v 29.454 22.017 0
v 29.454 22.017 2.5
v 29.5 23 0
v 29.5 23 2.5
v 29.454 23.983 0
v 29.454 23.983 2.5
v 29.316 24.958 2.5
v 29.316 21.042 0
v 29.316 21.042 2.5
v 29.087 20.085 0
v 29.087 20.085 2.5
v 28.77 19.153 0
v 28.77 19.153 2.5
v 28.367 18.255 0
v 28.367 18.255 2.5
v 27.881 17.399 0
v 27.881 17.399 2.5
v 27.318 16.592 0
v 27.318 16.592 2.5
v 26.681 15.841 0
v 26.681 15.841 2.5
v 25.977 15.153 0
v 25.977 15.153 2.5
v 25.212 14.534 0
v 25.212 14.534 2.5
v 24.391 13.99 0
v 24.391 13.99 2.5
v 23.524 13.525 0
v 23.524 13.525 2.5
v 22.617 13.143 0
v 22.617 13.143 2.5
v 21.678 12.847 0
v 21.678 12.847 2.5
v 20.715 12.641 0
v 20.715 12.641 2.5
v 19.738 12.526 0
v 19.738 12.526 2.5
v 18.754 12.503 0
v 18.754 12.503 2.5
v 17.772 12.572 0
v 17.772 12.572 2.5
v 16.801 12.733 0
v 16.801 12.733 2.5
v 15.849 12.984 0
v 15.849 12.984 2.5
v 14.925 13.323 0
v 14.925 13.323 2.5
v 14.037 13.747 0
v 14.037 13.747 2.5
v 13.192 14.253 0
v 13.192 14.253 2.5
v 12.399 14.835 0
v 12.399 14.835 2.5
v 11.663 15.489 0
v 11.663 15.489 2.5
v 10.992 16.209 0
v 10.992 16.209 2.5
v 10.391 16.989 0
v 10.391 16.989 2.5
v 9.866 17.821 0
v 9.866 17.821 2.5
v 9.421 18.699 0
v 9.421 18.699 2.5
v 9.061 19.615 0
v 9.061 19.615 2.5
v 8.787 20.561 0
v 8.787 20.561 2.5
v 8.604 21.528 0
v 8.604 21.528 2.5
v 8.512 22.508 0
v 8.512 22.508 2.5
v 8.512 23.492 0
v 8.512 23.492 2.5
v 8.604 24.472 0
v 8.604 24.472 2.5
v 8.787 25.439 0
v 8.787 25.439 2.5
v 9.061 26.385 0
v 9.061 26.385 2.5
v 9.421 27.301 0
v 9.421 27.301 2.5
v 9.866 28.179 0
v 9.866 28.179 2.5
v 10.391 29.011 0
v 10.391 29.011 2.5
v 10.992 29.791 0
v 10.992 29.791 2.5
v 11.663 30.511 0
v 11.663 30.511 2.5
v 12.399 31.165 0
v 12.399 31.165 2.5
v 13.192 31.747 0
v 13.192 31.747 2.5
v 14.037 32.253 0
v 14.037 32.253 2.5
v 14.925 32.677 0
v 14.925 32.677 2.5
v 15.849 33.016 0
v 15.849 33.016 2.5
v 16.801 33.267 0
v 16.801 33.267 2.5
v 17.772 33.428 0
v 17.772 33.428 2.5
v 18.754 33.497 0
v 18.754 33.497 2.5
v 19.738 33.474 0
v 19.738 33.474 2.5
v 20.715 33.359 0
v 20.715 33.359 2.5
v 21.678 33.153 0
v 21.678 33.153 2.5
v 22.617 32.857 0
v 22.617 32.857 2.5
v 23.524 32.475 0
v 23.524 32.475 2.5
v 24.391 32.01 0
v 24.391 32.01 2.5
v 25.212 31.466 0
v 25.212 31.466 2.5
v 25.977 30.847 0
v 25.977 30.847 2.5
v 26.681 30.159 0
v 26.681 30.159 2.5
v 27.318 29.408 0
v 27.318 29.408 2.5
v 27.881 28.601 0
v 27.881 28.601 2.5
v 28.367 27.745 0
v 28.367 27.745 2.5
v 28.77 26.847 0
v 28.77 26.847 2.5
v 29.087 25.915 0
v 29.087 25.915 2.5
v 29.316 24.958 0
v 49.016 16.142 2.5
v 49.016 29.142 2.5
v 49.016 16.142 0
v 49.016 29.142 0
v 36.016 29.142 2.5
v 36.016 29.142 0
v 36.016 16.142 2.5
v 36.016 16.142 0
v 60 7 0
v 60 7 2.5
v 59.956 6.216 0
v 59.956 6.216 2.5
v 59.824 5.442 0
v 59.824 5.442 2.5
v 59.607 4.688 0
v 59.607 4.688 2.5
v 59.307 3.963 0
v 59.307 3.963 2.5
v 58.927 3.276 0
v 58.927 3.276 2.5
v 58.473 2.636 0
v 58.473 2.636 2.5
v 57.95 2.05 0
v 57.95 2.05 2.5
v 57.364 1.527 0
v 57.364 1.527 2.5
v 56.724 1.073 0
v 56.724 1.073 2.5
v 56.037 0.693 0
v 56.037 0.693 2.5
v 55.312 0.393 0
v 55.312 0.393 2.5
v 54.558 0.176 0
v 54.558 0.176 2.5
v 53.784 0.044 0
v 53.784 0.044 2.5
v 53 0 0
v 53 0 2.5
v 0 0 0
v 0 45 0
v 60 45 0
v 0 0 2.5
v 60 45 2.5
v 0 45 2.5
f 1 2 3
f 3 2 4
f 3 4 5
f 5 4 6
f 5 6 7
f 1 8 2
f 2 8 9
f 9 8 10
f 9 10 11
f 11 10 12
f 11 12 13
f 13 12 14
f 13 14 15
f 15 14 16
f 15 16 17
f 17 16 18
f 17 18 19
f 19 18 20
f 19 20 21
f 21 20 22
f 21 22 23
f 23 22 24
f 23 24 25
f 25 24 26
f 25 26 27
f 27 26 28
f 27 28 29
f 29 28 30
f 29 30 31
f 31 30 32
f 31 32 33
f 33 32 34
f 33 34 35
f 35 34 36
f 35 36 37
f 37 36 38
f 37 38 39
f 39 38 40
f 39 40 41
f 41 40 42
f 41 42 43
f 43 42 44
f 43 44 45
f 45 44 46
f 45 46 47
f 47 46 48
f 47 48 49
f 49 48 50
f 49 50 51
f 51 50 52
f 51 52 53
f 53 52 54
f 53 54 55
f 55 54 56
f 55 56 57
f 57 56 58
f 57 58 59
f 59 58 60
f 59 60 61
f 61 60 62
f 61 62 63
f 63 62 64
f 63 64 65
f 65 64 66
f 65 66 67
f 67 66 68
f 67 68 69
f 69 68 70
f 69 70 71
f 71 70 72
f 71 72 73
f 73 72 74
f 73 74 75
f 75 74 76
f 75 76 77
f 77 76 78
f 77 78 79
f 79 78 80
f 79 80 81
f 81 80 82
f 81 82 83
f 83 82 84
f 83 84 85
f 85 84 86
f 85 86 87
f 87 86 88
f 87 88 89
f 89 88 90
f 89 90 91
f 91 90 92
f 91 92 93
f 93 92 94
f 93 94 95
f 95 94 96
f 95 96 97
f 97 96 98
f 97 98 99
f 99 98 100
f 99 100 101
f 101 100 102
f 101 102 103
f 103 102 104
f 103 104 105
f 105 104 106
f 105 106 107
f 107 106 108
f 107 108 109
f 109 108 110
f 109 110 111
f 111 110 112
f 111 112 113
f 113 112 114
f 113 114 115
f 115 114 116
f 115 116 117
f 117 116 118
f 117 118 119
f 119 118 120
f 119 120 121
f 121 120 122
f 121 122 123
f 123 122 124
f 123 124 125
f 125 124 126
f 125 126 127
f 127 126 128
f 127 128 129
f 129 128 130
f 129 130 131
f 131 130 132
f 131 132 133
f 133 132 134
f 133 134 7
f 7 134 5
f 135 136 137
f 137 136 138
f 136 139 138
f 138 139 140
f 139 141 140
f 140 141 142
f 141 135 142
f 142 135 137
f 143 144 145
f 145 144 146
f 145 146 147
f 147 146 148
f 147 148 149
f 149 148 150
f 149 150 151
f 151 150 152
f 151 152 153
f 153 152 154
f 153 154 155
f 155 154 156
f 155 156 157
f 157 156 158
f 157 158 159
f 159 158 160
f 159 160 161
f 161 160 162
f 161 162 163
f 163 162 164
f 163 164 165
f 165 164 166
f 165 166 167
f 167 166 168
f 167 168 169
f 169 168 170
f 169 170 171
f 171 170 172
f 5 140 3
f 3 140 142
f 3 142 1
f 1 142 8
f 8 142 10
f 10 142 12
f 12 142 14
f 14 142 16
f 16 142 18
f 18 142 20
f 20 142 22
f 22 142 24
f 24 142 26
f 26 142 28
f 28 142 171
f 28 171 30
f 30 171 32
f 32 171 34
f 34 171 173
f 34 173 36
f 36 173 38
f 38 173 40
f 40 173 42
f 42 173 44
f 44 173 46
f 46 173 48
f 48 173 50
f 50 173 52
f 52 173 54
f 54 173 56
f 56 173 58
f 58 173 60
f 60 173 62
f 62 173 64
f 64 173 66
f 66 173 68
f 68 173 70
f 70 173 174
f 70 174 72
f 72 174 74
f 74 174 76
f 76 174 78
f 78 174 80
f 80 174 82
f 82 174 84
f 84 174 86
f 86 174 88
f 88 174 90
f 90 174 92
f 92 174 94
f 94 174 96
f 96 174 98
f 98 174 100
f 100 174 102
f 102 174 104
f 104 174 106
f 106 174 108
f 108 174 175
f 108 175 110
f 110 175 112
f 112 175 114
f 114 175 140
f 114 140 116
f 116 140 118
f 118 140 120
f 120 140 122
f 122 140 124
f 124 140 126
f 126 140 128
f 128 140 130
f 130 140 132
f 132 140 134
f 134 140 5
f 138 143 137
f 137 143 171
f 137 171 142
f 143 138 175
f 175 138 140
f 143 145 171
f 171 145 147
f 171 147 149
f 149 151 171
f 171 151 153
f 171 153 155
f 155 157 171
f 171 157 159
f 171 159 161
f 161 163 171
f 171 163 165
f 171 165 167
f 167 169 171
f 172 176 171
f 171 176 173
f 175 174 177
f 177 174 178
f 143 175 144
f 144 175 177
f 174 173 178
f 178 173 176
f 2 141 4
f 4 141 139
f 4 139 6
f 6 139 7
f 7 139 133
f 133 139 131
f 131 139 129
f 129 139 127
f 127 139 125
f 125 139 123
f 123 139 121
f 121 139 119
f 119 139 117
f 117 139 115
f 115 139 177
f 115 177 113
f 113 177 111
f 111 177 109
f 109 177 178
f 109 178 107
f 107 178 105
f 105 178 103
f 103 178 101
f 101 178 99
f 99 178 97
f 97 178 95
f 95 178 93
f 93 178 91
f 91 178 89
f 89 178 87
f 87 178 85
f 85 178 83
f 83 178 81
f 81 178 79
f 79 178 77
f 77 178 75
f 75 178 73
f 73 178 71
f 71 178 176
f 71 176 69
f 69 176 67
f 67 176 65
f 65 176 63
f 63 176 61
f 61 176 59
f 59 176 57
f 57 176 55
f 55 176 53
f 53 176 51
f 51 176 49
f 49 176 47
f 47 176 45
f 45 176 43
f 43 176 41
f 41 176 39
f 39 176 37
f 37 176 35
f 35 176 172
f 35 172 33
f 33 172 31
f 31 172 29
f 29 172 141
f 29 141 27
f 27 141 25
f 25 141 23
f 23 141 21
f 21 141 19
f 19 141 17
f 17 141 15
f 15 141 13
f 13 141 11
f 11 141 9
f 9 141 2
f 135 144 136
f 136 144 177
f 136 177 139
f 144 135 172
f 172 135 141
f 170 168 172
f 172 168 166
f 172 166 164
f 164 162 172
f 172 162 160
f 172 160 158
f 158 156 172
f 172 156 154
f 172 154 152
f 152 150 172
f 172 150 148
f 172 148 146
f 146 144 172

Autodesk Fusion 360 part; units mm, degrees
sketch "Esquisse1" plane through (0, 0, 0) normal (0, 0, 1) x (1, 0, 0)
  line L0 (0, 0) -> (60, 0)
  line L1 (60, 0) -> (60, 45)
  line L2 (60, 45) -> (0, 45)
  line L3 (0, 45) -> (0, 0)
  dimension "d1" = 60
  dimension "d2" = 45
extrude "Extrusion1" add sketch "Esquisse1" along normal blind 2.5
fillet "Congé1" radius 7 1 edges at (60, 0, 1.25)
sketch "Esquisse2" plane through (0, 0, 2.5) normal (0, 0, 1) x (-1, 0, 0)
  arc A0 (-53, 0) -> (-60, -7) centre (-53, -7) ccw
  line L0 (-60, -7) -> (-60, -45)
  line L1 (-60, -45) -> (0, -45)
  line L2 (0, -45) -> (0, 0)
  line L3 (0, 0) -> (-53, 0)
  line L4 (-36.0159, -29.1423) -> (-49.0159, -29.1423)
  line L5 (-49.0159, -29.1423) -> (-49.0159, -16.1423)
  line L6 (-49.0159, -16.1423) -> (-36.0159, -16.1423)
  line L7 (-36.0159, -16.1423) -> (-36.0159, -29.1423)
  dimension "d7" = 13
  dimension "d8" = 13
extrude "Extrusion2" cut sketch "Esquisse2" against normal blind 2.5 contours L4 L5 L6 L7
sketch "Esquisse3" plane through (0, 0, 2.5) normal (0, 0, 1) x (-1, 0, 0)
  line L0 (-49.0159, -29.1423) -> (-49.0159, -16.1423)
  line L1 (-49.0159, -16.1423) -> (-36.0159, -16.1423)
  line L2 (-36.0159, -16.1423) -> (-36.0159, -29.1423)
  line L3 (-36.0159, -29.1423) -> (-49.0159, -29.1423)
  arc A0 (-53, 0) -> (-60, -7) centre (-53, -7) ccw
  line L4 (-60, -7) -> (-60, -45)
  line L5 (-60, -45) -> (0, -45)
  line L6 (0, -45) -> (0, 0)
  line L7 (0, 0) -> (-53, 0)
  circle A1 centre (-19, -23) radius 10.5
  dimension "d11" = 21
extrude "Extrusion3" cut sketch "Esquisse3" against normal blind 2.5 contours A1
